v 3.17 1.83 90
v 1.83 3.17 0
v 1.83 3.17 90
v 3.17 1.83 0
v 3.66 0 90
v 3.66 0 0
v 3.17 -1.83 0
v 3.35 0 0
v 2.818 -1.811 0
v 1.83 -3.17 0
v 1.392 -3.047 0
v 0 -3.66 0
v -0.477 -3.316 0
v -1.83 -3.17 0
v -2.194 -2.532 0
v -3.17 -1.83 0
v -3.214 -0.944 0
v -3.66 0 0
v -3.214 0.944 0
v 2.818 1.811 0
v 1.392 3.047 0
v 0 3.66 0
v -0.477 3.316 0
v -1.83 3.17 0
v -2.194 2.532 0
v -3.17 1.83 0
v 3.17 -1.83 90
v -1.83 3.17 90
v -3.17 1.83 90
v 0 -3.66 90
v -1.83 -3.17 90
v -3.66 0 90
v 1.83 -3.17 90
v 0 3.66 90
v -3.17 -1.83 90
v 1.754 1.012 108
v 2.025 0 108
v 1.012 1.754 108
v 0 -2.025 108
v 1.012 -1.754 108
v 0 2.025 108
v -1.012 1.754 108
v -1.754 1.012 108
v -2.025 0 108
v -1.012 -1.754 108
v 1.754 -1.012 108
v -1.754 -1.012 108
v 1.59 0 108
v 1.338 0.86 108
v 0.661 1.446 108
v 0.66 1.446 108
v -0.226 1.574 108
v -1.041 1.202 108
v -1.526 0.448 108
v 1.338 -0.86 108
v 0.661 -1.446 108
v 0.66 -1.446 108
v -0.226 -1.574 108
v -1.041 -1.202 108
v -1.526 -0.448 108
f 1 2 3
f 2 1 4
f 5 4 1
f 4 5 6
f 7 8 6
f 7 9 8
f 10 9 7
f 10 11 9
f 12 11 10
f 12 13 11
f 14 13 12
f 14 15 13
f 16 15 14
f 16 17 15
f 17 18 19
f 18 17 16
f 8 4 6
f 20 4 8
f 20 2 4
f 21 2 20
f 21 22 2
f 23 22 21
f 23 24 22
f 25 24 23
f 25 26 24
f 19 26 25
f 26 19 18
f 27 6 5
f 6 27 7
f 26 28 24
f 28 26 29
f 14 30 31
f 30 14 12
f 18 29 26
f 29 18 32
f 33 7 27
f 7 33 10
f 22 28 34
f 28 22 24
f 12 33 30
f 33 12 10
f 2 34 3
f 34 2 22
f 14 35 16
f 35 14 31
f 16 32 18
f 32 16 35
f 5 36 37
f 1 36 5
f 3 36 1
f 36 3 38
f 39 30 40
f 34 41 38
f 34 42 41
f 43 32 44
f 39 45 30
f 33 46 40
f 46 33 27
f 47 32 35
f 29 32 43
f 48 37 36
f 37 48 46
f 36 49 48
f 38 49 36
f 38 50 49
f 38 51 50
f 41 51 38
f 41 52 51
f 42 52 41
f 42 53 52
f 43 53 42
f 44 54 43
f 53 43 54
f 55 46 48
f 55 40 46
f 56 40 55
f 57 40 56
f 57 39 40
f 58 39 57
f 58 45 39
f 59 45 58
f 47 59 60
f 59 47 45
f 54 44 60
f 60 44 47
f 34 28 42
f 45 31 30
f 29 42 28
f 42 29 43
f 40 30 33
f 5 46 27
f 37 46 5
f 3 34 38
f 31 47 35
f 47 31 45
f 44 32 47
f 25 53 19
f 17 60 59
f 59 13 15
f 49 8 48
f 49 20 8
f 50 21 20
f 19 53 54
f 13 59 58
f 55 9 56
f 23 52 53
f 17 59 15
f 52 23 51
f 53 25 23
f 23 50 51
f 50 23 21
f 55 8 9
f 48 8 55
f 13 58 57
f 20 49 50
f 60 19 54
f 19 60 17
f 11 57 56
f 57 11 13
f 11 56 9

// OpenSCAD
// Measurements
$orig_length = 108;
$orig_tip_od = 4.05;
$orig_tip_id = 3.18;
$orig_tail_id= 6.70;
$orig_tail_od=10.37;
$orig_grip_len=32.38;
$orig_grip_from_tip=50-$orig_grip_len;

// Variables
$length = 108;
$tip_od = 4.05;
$tip_id = 3.18;
$tail_id= 6.70;
$tail_od= 7.32;
$grip_len=32.38;
$grip_from_tip=18;

$epsilon=0.01;

// Calculations
$body_length = $length - $grip_from_tip;


module outer_shell() {
    union() {
        // Tail
        cylinder(h=$body_length, r=$tail_od/2, center=false);
        
        // Tip
        translate([0,0,$body_length])
        cylinder(h=$grip_from_tip, r1=$tail_od/2, r2=$tip_od/2, center=false);
    }
}

module inner_core() {
    translate([0,0,-$epsilon/2])
    cylinder(h=$length+$epsilon, r1=$tail_id/2, r2=$tip_id/2, center=false);
}

difference() {
    outer_shell();
    inner_core();
}
